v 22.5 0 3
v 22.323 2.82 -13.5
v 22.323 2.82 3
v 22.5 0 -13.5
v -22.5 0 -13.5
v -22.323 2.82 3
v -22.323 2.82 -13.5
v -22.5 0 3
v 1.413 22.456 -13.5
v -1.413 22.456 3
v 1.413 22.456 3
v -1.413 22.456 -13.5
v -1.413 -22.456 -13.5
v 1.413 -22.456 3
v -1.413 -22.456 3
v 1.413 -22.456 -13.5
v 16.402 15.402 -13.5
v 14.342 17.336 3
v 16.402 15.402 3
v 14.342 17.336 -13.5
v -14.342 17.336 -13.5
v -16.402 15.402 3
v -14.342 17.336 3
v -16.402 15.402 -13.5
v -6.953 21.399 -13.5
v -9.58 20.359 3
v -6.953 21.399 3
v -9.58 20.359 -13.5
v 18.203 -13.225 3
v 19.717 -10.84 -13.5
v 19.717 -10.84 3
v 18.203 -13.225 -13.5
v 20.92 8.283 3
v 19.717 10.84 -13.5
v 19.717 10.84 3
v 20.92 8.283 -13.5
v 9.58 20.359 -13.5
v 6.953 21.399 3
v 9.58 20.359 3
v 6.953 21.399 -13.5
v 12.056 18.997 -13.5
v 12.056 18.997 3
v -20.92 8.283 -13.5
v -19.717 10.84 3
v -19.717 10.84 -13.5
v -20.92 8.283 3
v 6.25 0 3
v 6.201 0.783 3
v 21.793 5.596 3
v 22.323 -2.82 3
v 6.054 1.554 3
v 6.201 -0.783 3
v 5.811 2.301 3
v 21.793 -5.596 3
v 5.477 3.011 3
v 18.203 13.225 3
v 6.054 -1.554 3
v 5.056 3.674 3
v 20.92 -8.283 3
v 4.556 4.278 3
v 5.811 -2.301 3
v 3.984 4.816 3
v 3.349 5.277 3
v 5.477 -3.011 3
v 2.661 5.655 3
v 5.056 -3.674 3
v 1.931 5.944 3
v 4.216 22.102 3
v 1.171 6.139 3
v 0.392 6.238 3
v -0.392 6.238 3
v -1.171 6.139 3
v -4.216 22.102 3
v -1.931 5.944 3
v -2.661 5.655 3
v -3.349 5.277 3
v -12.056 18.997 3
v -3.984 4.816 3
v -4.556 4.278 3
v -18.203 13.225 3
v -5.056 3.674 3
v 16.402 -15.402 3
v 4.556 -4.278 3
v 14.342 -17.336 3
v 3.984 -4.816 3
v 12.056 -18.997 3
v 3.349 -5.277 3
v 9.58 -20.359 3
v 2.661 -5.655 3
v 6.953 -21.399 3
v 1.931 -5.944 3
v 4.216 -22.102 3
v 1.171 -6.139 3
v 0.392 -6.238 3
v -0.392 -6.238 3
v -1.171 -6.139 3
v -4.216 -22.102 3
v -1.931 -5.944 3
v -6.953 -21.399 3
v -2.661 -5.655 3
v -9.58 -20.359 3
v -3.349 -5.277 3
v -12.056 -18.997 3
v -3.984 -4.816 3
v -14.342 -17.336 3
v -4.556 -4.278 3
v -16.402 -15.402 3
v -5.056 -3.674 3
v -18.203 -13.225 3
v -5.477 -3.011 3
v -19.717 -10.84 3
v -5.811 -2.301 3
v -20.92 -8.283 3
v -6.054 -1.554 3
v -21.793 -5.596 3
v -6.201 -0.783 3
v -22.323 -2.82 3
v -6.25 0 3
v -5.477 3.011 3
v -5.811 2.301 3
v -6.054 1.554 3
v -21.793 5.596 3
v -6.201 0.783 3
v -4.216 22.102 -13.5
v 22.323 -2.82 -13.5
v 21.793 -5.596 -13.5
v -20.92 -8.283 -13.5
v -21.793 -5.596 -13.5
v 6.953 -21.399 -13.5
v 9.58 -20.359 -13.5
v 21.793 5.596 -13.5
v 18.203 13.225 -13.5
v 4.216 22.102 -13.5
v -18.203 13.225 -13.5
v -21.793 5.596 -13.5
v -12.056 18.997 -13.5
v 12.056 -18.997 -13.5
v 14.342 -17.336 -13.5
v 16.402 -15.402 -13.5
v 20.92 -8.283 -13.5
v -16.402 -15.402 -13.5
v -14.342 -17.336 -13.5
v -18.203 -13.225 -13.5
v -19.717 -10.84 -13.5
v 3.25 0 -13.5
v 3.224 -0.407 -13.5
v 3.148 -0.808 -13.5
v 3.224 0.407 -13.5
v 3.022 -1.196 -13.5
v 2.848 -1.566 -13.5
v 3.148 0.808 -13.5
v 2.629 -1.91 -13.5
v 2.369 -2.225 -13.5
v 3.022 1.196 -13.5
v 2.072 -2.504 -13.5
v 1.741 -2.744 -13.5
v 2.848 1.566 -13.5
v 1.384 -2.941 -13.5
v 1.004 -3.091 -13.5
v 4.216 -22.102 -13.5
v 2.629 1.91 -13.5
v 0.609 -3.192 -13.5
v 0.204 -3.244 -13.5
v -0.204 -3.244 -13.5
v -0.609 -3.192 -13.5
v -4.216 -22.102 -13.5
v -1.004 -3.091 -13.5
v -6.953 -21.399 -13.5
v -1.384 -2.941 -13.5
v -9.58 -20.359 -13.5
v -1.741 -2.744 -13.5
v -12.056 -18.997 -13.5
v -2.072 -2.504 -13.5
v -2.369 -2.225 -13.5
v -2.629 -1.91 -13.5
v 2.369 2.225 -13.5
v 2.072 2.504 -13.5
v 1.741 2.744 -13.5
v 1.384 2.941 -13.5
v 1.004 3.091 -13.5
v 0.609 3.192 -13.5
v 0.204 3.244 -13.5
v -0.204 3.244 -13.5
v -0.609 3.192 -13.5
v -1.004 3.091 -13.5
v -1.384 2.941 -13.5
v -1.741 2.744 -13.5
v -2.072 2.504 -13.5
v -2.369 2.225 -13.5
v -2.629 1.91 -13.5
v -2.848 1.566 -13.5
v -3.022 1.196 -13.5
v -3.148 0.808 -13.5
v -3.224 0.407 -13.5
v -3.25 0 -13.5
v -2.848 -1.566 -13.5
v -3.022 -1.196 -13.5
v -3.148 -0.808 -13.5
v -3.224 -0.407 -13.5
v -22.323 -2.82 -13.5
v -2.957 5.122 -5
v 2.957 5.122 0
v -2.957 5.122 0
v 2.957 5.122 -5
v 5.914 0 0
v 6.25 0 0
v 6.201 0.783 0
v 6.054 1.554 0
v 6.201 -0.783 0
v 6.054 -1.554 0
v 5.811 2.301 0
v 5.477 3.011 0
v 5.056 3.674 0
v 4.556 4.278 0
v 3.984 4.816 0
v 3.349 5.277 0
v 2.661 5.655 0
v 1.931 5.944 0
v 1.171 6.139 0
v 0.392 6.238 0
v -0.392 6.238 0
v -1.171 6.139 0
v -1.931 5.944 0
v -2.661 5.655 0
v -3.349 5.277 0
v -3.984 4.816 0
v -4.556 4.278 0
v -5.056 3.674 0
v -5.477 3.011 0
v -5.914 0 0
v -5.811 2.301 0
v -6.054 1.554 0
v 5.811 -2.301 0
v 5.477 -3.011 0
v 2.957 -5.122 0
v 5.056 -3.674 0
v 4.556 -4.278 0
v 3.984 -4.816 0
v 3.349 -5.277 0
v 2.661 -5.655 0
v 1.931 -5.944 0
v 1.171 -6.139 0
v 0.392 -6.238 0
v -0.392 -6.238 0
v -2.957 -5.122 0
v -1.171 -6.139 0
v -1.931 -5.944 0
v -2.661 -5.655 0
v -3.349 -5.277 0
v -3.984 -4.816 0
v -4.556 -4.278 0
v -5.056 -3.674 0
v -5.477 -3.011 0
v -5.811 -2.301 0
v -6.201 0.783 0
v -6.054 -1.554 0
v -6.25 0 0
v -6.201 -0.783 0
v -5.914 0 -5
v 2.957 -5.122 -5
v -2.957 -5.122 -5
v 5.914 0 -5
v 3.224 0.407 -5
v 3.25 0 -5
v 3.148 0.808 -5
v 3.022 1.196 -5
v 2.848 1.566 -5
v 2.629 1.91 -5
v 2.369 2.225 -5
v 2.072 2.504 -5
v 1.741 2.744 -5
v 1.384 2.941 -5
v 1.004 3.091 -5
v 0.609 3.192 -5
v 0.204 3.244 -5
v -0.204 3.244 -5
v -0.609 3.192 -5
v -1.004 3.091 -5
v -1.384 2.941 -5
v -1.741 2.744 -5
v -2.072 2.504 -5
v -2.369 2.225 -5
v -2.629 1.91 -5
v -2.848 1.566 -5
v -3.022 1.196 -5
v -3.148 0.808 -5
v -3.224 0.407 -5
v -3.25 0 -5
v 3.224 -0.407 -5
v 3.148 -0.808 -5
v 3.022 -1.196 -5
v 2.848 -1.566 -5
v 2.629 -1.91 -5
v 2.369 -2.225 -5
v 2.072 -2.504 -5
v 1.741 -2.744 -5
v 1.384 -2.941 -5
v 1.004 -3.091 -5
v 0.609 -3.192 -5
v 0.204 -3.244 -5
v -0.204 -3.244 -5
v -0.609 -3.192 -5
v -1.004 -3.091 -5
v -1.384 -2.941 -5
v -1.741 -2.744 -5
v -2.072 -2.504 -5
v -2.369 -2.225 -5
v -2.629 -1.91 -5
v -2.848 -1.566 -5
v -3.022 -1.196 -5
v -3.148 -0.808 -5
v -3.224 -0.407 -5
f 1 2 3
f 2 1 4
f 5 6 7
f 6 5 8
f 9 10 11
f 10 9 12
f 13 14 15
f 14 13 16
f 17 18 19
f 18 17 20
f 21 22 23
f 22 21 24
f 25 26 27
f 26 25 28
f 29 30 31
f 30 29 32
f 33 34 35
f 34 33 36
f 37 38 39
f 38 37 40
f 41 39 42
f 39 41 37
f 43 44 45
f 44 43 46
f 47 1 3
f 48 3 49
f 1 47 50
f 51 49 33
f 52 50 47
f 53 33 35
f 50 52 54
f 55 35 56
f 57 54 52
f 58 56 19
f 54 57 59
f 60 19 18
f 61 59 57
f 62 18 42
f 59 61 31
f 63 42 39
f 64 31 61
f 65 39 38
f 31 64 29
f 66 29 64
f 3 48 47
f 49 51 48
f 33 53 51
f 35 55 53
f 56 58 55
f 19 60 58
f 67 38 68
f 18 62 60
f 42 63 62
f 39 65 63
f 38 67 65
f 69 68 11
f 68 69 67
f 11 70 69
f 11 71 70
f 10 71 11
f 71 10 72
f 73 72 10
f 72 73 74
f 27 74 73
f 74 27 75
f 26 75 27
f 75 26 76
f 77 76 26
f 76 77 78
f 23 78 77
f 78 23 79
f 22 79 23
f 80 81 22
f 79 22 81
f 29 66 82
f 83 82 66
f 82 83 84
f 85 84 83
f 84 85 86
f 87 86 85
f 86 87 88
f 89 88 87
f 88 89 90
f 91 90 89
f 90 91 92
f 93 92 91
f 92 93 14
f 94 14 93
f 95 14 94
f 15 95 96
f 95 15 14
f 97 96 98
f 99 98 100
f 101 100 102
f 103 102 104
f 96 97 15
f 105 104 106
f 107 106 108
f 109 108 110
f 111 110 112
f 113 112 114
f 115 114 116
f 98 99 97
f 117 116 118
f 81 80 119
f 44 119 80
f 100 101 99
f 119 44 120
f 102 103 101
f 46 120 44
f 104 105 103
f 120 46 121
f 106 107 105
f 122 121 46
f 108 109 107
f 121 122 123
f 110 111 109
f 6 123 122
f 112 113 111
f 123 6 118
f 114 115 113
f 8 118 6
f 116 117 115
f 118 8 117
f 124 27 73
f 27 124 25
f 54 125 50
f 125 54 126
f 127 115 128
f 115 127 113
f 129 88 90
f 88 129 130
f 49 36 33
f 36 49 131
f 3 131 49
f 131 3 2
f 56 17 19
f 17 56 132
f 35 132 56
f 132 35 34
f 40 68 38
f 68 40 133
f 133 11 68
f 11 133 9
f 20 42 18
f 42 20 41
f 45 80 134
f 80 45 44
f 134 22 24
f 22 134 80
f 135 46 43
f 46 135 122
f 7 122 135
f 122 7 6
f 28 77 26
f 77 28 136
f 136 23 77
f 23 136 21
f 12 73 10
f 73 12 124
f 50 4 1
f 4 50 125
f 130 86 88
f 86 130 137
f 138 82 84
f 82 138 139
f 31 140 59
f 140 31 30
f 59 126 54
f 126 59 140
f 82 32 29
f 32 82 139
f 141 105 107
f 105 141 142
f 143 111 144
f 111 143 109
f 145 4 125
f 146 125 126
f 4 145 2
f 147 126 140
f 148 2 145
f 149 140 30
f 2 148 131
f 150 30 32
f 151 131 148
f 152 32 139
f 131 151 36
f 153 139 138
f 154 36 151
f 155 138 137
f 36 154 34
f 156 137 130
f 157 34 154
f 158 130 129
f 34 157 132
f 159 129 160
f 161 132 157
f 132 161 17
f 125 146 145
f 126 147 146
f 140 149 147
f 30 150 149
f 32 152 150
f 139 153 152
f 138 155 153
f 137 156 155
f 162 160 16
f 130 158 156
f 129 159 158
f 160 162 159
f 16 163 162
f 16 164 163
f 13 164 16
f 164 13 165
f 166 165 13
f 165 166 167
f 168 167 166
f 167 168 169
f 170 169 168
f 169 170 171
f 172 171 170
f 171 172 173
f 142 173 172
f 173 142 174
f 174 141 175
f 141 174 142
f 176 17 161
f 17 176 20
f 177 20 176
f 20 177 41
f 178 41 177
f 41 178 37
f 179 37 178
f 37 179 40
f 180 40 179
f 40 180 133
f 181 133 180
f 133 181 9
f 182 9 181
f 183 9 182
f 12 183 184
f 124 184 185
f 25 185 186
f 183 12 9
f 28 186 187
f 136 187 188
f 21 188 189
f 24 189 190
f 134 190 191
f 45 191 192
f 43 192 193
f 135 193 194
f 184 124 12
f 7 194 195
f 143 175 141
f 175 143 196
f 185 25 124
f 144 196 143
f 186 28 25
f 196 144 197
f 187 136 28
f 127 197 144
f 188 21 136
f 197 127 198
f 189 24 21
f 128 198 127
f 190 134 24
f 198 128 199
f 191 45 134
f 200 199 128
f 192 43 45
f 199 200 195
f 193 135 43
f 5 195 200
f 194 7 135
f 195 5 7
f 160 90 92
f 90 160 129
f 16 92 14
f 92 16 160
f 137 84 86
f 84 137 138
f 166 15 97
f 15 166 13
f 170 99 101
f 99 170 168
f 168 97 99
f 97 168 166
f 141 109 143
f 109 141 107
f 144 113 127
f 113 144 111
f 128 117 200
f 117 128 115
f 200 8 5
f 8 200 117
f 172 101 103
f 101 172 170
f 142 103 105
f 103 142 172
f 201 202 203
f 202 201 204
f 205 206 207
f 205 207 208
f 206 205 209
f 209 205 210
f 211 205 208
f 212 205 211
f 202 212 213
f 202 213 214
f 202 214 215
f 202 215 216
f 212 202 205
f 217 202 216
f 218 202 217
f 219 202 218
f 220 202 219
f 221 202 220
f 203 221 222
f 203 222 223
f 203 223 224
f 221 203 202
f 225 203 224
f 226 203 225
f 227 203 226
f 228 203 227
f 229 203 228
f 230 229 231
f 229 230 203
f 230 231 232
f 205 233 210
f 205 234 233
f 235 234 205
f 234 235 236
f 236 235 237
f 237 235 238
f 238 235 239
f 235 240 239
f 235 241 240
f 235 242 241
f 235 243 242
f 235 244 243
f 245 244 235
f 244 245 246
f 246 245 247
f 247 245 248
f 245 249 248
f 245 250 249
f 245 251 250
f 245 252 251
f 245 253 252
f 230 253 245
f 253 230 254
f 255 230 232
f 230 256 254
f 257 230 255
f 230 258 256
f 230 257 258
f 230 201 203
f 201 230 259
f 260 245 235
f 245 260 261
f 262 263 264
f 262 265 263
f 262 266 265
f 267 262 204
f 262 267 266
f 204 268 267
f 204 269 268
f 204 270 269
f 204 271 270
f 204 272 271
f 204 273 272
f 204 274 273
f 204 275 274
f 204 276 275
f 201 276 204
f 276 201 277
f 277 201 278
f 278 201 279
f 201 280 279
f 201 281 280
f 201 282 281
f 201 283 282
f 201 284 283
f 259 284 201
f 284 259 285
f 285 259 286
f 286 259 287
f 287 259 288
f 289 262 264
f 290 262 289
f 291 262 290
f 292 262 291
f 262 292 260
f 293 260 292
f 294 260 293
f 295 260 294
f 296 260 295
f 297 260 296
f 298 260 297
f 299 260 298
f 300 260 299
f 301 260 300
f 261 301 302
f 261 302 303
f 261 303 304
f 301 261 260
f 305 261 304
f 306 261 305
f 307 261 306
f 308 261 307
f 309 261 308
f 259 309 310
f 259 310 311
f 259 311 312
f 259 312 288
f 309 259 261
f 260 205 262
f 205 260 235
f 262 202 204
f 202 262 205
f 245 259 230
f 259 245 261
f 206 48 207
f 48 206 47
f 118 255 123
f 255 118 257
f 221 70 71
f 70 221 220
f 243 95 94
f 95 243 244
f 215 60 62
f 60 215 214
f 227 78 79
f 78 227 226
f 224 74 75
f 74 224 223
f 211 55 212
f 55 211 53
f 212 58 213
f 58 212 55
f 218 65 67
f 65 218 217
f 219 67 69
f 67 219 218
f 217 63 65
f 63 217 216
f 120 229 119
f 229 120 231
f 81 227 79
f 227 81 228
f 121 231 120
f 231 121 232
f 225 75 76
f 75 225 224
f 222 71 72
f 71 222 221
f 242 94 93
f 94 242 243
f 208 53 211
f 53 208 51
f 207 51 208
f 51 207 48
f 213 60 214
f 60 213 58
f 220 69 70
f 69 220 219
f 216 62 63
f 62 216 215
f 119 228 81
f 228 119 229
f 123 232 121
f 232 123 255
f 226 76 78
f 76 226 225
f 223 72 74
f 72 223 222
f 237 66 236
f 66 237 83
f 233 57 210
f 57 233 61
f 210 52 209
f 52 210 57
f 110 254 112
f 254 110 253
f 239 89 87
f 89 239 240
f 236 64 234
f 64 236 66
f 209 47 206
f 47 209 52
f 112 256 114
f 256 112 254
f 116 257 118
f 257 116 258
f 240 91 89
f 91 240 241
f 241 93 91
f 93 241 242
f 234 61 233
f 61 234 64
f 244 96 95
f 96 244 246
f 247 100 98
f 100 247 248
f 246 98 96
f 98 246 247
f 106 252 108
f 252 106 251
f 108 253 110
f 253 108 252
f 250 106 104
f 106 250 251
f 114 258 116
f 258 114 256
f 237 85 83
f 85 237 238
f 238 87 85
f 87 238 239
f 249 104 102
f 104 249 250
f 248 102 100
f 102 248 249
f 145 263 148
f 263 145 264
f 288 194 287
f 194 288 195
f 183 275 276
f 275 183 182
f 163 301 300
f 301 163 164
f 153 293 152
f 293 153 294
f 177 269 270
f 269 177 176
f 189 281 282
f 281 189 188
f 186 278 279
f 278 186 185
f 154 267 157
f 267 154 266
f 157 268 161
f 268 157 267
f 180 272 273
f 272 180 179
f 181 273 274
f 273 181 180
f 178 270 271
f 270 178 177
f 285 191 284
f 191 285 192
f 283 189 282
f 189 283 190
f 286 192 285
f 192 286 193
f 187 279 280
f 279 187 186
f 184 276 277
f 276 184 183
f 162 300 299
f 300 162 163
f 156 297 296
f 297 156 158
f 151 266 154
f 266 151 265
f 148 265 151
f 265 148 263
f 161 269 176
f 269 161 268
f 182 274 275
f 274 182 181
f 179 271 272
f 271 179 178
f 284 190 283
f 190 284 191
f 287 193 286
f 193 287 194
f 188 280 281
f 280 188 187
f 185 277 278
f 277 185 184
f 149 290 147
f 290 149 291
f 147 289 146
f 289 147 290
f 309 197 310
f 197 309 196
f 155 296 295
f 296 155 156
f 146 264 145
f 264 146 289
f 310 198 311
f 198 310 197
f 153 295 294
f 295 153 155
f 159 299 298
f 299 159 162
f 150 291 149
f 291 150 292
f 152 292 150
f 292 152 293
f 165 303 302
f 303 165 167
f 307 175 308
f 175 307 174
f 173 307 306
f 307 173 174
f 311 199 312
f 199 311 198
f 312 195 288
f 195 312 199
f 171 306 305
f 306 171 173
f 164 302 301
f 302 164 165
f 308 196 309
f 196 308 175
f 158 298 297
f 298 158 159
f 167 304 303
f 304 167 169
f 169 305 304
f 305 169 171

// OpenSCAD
$fn = 50;


difference() {
	union() {
		translate(v = [0, 0, -13.5000000000]) {
			cylinder(h = 16.5000000000, r = 22.5000000000);
		}
		#translate(v = [0, 0, -15.0000000000]) {
			cylinder(h = 15, r = 2.8750000000);
		}
	}
	union() {
		translate(v = [0, 0, 0]) {
			rotate(a = [0, 0, 0]) {
				difference() {
					union() {
						translate(v = [0, 0, -5]) {
							linear_extrude(height = 5) {
								polygon(points = [[5.9142500000, 0.0000000000], [2.9571250000, 5.1218907443], [-2.9571250000, 5.1218907443], [-5.9142500000, 0.0000000000], [-2.9571250000, -5.1218907443], [2.9571250000, -5.1218907443]]);
							}
						}
					}
					union();
				}
			}
		}
		#cylinder(h = 3, r = 6.2500000000);
		#translate(v = [0, 0, -100.0000000000]) {
			cylinder(h = 200, r = 3.2500000000);
		}
	}
}
